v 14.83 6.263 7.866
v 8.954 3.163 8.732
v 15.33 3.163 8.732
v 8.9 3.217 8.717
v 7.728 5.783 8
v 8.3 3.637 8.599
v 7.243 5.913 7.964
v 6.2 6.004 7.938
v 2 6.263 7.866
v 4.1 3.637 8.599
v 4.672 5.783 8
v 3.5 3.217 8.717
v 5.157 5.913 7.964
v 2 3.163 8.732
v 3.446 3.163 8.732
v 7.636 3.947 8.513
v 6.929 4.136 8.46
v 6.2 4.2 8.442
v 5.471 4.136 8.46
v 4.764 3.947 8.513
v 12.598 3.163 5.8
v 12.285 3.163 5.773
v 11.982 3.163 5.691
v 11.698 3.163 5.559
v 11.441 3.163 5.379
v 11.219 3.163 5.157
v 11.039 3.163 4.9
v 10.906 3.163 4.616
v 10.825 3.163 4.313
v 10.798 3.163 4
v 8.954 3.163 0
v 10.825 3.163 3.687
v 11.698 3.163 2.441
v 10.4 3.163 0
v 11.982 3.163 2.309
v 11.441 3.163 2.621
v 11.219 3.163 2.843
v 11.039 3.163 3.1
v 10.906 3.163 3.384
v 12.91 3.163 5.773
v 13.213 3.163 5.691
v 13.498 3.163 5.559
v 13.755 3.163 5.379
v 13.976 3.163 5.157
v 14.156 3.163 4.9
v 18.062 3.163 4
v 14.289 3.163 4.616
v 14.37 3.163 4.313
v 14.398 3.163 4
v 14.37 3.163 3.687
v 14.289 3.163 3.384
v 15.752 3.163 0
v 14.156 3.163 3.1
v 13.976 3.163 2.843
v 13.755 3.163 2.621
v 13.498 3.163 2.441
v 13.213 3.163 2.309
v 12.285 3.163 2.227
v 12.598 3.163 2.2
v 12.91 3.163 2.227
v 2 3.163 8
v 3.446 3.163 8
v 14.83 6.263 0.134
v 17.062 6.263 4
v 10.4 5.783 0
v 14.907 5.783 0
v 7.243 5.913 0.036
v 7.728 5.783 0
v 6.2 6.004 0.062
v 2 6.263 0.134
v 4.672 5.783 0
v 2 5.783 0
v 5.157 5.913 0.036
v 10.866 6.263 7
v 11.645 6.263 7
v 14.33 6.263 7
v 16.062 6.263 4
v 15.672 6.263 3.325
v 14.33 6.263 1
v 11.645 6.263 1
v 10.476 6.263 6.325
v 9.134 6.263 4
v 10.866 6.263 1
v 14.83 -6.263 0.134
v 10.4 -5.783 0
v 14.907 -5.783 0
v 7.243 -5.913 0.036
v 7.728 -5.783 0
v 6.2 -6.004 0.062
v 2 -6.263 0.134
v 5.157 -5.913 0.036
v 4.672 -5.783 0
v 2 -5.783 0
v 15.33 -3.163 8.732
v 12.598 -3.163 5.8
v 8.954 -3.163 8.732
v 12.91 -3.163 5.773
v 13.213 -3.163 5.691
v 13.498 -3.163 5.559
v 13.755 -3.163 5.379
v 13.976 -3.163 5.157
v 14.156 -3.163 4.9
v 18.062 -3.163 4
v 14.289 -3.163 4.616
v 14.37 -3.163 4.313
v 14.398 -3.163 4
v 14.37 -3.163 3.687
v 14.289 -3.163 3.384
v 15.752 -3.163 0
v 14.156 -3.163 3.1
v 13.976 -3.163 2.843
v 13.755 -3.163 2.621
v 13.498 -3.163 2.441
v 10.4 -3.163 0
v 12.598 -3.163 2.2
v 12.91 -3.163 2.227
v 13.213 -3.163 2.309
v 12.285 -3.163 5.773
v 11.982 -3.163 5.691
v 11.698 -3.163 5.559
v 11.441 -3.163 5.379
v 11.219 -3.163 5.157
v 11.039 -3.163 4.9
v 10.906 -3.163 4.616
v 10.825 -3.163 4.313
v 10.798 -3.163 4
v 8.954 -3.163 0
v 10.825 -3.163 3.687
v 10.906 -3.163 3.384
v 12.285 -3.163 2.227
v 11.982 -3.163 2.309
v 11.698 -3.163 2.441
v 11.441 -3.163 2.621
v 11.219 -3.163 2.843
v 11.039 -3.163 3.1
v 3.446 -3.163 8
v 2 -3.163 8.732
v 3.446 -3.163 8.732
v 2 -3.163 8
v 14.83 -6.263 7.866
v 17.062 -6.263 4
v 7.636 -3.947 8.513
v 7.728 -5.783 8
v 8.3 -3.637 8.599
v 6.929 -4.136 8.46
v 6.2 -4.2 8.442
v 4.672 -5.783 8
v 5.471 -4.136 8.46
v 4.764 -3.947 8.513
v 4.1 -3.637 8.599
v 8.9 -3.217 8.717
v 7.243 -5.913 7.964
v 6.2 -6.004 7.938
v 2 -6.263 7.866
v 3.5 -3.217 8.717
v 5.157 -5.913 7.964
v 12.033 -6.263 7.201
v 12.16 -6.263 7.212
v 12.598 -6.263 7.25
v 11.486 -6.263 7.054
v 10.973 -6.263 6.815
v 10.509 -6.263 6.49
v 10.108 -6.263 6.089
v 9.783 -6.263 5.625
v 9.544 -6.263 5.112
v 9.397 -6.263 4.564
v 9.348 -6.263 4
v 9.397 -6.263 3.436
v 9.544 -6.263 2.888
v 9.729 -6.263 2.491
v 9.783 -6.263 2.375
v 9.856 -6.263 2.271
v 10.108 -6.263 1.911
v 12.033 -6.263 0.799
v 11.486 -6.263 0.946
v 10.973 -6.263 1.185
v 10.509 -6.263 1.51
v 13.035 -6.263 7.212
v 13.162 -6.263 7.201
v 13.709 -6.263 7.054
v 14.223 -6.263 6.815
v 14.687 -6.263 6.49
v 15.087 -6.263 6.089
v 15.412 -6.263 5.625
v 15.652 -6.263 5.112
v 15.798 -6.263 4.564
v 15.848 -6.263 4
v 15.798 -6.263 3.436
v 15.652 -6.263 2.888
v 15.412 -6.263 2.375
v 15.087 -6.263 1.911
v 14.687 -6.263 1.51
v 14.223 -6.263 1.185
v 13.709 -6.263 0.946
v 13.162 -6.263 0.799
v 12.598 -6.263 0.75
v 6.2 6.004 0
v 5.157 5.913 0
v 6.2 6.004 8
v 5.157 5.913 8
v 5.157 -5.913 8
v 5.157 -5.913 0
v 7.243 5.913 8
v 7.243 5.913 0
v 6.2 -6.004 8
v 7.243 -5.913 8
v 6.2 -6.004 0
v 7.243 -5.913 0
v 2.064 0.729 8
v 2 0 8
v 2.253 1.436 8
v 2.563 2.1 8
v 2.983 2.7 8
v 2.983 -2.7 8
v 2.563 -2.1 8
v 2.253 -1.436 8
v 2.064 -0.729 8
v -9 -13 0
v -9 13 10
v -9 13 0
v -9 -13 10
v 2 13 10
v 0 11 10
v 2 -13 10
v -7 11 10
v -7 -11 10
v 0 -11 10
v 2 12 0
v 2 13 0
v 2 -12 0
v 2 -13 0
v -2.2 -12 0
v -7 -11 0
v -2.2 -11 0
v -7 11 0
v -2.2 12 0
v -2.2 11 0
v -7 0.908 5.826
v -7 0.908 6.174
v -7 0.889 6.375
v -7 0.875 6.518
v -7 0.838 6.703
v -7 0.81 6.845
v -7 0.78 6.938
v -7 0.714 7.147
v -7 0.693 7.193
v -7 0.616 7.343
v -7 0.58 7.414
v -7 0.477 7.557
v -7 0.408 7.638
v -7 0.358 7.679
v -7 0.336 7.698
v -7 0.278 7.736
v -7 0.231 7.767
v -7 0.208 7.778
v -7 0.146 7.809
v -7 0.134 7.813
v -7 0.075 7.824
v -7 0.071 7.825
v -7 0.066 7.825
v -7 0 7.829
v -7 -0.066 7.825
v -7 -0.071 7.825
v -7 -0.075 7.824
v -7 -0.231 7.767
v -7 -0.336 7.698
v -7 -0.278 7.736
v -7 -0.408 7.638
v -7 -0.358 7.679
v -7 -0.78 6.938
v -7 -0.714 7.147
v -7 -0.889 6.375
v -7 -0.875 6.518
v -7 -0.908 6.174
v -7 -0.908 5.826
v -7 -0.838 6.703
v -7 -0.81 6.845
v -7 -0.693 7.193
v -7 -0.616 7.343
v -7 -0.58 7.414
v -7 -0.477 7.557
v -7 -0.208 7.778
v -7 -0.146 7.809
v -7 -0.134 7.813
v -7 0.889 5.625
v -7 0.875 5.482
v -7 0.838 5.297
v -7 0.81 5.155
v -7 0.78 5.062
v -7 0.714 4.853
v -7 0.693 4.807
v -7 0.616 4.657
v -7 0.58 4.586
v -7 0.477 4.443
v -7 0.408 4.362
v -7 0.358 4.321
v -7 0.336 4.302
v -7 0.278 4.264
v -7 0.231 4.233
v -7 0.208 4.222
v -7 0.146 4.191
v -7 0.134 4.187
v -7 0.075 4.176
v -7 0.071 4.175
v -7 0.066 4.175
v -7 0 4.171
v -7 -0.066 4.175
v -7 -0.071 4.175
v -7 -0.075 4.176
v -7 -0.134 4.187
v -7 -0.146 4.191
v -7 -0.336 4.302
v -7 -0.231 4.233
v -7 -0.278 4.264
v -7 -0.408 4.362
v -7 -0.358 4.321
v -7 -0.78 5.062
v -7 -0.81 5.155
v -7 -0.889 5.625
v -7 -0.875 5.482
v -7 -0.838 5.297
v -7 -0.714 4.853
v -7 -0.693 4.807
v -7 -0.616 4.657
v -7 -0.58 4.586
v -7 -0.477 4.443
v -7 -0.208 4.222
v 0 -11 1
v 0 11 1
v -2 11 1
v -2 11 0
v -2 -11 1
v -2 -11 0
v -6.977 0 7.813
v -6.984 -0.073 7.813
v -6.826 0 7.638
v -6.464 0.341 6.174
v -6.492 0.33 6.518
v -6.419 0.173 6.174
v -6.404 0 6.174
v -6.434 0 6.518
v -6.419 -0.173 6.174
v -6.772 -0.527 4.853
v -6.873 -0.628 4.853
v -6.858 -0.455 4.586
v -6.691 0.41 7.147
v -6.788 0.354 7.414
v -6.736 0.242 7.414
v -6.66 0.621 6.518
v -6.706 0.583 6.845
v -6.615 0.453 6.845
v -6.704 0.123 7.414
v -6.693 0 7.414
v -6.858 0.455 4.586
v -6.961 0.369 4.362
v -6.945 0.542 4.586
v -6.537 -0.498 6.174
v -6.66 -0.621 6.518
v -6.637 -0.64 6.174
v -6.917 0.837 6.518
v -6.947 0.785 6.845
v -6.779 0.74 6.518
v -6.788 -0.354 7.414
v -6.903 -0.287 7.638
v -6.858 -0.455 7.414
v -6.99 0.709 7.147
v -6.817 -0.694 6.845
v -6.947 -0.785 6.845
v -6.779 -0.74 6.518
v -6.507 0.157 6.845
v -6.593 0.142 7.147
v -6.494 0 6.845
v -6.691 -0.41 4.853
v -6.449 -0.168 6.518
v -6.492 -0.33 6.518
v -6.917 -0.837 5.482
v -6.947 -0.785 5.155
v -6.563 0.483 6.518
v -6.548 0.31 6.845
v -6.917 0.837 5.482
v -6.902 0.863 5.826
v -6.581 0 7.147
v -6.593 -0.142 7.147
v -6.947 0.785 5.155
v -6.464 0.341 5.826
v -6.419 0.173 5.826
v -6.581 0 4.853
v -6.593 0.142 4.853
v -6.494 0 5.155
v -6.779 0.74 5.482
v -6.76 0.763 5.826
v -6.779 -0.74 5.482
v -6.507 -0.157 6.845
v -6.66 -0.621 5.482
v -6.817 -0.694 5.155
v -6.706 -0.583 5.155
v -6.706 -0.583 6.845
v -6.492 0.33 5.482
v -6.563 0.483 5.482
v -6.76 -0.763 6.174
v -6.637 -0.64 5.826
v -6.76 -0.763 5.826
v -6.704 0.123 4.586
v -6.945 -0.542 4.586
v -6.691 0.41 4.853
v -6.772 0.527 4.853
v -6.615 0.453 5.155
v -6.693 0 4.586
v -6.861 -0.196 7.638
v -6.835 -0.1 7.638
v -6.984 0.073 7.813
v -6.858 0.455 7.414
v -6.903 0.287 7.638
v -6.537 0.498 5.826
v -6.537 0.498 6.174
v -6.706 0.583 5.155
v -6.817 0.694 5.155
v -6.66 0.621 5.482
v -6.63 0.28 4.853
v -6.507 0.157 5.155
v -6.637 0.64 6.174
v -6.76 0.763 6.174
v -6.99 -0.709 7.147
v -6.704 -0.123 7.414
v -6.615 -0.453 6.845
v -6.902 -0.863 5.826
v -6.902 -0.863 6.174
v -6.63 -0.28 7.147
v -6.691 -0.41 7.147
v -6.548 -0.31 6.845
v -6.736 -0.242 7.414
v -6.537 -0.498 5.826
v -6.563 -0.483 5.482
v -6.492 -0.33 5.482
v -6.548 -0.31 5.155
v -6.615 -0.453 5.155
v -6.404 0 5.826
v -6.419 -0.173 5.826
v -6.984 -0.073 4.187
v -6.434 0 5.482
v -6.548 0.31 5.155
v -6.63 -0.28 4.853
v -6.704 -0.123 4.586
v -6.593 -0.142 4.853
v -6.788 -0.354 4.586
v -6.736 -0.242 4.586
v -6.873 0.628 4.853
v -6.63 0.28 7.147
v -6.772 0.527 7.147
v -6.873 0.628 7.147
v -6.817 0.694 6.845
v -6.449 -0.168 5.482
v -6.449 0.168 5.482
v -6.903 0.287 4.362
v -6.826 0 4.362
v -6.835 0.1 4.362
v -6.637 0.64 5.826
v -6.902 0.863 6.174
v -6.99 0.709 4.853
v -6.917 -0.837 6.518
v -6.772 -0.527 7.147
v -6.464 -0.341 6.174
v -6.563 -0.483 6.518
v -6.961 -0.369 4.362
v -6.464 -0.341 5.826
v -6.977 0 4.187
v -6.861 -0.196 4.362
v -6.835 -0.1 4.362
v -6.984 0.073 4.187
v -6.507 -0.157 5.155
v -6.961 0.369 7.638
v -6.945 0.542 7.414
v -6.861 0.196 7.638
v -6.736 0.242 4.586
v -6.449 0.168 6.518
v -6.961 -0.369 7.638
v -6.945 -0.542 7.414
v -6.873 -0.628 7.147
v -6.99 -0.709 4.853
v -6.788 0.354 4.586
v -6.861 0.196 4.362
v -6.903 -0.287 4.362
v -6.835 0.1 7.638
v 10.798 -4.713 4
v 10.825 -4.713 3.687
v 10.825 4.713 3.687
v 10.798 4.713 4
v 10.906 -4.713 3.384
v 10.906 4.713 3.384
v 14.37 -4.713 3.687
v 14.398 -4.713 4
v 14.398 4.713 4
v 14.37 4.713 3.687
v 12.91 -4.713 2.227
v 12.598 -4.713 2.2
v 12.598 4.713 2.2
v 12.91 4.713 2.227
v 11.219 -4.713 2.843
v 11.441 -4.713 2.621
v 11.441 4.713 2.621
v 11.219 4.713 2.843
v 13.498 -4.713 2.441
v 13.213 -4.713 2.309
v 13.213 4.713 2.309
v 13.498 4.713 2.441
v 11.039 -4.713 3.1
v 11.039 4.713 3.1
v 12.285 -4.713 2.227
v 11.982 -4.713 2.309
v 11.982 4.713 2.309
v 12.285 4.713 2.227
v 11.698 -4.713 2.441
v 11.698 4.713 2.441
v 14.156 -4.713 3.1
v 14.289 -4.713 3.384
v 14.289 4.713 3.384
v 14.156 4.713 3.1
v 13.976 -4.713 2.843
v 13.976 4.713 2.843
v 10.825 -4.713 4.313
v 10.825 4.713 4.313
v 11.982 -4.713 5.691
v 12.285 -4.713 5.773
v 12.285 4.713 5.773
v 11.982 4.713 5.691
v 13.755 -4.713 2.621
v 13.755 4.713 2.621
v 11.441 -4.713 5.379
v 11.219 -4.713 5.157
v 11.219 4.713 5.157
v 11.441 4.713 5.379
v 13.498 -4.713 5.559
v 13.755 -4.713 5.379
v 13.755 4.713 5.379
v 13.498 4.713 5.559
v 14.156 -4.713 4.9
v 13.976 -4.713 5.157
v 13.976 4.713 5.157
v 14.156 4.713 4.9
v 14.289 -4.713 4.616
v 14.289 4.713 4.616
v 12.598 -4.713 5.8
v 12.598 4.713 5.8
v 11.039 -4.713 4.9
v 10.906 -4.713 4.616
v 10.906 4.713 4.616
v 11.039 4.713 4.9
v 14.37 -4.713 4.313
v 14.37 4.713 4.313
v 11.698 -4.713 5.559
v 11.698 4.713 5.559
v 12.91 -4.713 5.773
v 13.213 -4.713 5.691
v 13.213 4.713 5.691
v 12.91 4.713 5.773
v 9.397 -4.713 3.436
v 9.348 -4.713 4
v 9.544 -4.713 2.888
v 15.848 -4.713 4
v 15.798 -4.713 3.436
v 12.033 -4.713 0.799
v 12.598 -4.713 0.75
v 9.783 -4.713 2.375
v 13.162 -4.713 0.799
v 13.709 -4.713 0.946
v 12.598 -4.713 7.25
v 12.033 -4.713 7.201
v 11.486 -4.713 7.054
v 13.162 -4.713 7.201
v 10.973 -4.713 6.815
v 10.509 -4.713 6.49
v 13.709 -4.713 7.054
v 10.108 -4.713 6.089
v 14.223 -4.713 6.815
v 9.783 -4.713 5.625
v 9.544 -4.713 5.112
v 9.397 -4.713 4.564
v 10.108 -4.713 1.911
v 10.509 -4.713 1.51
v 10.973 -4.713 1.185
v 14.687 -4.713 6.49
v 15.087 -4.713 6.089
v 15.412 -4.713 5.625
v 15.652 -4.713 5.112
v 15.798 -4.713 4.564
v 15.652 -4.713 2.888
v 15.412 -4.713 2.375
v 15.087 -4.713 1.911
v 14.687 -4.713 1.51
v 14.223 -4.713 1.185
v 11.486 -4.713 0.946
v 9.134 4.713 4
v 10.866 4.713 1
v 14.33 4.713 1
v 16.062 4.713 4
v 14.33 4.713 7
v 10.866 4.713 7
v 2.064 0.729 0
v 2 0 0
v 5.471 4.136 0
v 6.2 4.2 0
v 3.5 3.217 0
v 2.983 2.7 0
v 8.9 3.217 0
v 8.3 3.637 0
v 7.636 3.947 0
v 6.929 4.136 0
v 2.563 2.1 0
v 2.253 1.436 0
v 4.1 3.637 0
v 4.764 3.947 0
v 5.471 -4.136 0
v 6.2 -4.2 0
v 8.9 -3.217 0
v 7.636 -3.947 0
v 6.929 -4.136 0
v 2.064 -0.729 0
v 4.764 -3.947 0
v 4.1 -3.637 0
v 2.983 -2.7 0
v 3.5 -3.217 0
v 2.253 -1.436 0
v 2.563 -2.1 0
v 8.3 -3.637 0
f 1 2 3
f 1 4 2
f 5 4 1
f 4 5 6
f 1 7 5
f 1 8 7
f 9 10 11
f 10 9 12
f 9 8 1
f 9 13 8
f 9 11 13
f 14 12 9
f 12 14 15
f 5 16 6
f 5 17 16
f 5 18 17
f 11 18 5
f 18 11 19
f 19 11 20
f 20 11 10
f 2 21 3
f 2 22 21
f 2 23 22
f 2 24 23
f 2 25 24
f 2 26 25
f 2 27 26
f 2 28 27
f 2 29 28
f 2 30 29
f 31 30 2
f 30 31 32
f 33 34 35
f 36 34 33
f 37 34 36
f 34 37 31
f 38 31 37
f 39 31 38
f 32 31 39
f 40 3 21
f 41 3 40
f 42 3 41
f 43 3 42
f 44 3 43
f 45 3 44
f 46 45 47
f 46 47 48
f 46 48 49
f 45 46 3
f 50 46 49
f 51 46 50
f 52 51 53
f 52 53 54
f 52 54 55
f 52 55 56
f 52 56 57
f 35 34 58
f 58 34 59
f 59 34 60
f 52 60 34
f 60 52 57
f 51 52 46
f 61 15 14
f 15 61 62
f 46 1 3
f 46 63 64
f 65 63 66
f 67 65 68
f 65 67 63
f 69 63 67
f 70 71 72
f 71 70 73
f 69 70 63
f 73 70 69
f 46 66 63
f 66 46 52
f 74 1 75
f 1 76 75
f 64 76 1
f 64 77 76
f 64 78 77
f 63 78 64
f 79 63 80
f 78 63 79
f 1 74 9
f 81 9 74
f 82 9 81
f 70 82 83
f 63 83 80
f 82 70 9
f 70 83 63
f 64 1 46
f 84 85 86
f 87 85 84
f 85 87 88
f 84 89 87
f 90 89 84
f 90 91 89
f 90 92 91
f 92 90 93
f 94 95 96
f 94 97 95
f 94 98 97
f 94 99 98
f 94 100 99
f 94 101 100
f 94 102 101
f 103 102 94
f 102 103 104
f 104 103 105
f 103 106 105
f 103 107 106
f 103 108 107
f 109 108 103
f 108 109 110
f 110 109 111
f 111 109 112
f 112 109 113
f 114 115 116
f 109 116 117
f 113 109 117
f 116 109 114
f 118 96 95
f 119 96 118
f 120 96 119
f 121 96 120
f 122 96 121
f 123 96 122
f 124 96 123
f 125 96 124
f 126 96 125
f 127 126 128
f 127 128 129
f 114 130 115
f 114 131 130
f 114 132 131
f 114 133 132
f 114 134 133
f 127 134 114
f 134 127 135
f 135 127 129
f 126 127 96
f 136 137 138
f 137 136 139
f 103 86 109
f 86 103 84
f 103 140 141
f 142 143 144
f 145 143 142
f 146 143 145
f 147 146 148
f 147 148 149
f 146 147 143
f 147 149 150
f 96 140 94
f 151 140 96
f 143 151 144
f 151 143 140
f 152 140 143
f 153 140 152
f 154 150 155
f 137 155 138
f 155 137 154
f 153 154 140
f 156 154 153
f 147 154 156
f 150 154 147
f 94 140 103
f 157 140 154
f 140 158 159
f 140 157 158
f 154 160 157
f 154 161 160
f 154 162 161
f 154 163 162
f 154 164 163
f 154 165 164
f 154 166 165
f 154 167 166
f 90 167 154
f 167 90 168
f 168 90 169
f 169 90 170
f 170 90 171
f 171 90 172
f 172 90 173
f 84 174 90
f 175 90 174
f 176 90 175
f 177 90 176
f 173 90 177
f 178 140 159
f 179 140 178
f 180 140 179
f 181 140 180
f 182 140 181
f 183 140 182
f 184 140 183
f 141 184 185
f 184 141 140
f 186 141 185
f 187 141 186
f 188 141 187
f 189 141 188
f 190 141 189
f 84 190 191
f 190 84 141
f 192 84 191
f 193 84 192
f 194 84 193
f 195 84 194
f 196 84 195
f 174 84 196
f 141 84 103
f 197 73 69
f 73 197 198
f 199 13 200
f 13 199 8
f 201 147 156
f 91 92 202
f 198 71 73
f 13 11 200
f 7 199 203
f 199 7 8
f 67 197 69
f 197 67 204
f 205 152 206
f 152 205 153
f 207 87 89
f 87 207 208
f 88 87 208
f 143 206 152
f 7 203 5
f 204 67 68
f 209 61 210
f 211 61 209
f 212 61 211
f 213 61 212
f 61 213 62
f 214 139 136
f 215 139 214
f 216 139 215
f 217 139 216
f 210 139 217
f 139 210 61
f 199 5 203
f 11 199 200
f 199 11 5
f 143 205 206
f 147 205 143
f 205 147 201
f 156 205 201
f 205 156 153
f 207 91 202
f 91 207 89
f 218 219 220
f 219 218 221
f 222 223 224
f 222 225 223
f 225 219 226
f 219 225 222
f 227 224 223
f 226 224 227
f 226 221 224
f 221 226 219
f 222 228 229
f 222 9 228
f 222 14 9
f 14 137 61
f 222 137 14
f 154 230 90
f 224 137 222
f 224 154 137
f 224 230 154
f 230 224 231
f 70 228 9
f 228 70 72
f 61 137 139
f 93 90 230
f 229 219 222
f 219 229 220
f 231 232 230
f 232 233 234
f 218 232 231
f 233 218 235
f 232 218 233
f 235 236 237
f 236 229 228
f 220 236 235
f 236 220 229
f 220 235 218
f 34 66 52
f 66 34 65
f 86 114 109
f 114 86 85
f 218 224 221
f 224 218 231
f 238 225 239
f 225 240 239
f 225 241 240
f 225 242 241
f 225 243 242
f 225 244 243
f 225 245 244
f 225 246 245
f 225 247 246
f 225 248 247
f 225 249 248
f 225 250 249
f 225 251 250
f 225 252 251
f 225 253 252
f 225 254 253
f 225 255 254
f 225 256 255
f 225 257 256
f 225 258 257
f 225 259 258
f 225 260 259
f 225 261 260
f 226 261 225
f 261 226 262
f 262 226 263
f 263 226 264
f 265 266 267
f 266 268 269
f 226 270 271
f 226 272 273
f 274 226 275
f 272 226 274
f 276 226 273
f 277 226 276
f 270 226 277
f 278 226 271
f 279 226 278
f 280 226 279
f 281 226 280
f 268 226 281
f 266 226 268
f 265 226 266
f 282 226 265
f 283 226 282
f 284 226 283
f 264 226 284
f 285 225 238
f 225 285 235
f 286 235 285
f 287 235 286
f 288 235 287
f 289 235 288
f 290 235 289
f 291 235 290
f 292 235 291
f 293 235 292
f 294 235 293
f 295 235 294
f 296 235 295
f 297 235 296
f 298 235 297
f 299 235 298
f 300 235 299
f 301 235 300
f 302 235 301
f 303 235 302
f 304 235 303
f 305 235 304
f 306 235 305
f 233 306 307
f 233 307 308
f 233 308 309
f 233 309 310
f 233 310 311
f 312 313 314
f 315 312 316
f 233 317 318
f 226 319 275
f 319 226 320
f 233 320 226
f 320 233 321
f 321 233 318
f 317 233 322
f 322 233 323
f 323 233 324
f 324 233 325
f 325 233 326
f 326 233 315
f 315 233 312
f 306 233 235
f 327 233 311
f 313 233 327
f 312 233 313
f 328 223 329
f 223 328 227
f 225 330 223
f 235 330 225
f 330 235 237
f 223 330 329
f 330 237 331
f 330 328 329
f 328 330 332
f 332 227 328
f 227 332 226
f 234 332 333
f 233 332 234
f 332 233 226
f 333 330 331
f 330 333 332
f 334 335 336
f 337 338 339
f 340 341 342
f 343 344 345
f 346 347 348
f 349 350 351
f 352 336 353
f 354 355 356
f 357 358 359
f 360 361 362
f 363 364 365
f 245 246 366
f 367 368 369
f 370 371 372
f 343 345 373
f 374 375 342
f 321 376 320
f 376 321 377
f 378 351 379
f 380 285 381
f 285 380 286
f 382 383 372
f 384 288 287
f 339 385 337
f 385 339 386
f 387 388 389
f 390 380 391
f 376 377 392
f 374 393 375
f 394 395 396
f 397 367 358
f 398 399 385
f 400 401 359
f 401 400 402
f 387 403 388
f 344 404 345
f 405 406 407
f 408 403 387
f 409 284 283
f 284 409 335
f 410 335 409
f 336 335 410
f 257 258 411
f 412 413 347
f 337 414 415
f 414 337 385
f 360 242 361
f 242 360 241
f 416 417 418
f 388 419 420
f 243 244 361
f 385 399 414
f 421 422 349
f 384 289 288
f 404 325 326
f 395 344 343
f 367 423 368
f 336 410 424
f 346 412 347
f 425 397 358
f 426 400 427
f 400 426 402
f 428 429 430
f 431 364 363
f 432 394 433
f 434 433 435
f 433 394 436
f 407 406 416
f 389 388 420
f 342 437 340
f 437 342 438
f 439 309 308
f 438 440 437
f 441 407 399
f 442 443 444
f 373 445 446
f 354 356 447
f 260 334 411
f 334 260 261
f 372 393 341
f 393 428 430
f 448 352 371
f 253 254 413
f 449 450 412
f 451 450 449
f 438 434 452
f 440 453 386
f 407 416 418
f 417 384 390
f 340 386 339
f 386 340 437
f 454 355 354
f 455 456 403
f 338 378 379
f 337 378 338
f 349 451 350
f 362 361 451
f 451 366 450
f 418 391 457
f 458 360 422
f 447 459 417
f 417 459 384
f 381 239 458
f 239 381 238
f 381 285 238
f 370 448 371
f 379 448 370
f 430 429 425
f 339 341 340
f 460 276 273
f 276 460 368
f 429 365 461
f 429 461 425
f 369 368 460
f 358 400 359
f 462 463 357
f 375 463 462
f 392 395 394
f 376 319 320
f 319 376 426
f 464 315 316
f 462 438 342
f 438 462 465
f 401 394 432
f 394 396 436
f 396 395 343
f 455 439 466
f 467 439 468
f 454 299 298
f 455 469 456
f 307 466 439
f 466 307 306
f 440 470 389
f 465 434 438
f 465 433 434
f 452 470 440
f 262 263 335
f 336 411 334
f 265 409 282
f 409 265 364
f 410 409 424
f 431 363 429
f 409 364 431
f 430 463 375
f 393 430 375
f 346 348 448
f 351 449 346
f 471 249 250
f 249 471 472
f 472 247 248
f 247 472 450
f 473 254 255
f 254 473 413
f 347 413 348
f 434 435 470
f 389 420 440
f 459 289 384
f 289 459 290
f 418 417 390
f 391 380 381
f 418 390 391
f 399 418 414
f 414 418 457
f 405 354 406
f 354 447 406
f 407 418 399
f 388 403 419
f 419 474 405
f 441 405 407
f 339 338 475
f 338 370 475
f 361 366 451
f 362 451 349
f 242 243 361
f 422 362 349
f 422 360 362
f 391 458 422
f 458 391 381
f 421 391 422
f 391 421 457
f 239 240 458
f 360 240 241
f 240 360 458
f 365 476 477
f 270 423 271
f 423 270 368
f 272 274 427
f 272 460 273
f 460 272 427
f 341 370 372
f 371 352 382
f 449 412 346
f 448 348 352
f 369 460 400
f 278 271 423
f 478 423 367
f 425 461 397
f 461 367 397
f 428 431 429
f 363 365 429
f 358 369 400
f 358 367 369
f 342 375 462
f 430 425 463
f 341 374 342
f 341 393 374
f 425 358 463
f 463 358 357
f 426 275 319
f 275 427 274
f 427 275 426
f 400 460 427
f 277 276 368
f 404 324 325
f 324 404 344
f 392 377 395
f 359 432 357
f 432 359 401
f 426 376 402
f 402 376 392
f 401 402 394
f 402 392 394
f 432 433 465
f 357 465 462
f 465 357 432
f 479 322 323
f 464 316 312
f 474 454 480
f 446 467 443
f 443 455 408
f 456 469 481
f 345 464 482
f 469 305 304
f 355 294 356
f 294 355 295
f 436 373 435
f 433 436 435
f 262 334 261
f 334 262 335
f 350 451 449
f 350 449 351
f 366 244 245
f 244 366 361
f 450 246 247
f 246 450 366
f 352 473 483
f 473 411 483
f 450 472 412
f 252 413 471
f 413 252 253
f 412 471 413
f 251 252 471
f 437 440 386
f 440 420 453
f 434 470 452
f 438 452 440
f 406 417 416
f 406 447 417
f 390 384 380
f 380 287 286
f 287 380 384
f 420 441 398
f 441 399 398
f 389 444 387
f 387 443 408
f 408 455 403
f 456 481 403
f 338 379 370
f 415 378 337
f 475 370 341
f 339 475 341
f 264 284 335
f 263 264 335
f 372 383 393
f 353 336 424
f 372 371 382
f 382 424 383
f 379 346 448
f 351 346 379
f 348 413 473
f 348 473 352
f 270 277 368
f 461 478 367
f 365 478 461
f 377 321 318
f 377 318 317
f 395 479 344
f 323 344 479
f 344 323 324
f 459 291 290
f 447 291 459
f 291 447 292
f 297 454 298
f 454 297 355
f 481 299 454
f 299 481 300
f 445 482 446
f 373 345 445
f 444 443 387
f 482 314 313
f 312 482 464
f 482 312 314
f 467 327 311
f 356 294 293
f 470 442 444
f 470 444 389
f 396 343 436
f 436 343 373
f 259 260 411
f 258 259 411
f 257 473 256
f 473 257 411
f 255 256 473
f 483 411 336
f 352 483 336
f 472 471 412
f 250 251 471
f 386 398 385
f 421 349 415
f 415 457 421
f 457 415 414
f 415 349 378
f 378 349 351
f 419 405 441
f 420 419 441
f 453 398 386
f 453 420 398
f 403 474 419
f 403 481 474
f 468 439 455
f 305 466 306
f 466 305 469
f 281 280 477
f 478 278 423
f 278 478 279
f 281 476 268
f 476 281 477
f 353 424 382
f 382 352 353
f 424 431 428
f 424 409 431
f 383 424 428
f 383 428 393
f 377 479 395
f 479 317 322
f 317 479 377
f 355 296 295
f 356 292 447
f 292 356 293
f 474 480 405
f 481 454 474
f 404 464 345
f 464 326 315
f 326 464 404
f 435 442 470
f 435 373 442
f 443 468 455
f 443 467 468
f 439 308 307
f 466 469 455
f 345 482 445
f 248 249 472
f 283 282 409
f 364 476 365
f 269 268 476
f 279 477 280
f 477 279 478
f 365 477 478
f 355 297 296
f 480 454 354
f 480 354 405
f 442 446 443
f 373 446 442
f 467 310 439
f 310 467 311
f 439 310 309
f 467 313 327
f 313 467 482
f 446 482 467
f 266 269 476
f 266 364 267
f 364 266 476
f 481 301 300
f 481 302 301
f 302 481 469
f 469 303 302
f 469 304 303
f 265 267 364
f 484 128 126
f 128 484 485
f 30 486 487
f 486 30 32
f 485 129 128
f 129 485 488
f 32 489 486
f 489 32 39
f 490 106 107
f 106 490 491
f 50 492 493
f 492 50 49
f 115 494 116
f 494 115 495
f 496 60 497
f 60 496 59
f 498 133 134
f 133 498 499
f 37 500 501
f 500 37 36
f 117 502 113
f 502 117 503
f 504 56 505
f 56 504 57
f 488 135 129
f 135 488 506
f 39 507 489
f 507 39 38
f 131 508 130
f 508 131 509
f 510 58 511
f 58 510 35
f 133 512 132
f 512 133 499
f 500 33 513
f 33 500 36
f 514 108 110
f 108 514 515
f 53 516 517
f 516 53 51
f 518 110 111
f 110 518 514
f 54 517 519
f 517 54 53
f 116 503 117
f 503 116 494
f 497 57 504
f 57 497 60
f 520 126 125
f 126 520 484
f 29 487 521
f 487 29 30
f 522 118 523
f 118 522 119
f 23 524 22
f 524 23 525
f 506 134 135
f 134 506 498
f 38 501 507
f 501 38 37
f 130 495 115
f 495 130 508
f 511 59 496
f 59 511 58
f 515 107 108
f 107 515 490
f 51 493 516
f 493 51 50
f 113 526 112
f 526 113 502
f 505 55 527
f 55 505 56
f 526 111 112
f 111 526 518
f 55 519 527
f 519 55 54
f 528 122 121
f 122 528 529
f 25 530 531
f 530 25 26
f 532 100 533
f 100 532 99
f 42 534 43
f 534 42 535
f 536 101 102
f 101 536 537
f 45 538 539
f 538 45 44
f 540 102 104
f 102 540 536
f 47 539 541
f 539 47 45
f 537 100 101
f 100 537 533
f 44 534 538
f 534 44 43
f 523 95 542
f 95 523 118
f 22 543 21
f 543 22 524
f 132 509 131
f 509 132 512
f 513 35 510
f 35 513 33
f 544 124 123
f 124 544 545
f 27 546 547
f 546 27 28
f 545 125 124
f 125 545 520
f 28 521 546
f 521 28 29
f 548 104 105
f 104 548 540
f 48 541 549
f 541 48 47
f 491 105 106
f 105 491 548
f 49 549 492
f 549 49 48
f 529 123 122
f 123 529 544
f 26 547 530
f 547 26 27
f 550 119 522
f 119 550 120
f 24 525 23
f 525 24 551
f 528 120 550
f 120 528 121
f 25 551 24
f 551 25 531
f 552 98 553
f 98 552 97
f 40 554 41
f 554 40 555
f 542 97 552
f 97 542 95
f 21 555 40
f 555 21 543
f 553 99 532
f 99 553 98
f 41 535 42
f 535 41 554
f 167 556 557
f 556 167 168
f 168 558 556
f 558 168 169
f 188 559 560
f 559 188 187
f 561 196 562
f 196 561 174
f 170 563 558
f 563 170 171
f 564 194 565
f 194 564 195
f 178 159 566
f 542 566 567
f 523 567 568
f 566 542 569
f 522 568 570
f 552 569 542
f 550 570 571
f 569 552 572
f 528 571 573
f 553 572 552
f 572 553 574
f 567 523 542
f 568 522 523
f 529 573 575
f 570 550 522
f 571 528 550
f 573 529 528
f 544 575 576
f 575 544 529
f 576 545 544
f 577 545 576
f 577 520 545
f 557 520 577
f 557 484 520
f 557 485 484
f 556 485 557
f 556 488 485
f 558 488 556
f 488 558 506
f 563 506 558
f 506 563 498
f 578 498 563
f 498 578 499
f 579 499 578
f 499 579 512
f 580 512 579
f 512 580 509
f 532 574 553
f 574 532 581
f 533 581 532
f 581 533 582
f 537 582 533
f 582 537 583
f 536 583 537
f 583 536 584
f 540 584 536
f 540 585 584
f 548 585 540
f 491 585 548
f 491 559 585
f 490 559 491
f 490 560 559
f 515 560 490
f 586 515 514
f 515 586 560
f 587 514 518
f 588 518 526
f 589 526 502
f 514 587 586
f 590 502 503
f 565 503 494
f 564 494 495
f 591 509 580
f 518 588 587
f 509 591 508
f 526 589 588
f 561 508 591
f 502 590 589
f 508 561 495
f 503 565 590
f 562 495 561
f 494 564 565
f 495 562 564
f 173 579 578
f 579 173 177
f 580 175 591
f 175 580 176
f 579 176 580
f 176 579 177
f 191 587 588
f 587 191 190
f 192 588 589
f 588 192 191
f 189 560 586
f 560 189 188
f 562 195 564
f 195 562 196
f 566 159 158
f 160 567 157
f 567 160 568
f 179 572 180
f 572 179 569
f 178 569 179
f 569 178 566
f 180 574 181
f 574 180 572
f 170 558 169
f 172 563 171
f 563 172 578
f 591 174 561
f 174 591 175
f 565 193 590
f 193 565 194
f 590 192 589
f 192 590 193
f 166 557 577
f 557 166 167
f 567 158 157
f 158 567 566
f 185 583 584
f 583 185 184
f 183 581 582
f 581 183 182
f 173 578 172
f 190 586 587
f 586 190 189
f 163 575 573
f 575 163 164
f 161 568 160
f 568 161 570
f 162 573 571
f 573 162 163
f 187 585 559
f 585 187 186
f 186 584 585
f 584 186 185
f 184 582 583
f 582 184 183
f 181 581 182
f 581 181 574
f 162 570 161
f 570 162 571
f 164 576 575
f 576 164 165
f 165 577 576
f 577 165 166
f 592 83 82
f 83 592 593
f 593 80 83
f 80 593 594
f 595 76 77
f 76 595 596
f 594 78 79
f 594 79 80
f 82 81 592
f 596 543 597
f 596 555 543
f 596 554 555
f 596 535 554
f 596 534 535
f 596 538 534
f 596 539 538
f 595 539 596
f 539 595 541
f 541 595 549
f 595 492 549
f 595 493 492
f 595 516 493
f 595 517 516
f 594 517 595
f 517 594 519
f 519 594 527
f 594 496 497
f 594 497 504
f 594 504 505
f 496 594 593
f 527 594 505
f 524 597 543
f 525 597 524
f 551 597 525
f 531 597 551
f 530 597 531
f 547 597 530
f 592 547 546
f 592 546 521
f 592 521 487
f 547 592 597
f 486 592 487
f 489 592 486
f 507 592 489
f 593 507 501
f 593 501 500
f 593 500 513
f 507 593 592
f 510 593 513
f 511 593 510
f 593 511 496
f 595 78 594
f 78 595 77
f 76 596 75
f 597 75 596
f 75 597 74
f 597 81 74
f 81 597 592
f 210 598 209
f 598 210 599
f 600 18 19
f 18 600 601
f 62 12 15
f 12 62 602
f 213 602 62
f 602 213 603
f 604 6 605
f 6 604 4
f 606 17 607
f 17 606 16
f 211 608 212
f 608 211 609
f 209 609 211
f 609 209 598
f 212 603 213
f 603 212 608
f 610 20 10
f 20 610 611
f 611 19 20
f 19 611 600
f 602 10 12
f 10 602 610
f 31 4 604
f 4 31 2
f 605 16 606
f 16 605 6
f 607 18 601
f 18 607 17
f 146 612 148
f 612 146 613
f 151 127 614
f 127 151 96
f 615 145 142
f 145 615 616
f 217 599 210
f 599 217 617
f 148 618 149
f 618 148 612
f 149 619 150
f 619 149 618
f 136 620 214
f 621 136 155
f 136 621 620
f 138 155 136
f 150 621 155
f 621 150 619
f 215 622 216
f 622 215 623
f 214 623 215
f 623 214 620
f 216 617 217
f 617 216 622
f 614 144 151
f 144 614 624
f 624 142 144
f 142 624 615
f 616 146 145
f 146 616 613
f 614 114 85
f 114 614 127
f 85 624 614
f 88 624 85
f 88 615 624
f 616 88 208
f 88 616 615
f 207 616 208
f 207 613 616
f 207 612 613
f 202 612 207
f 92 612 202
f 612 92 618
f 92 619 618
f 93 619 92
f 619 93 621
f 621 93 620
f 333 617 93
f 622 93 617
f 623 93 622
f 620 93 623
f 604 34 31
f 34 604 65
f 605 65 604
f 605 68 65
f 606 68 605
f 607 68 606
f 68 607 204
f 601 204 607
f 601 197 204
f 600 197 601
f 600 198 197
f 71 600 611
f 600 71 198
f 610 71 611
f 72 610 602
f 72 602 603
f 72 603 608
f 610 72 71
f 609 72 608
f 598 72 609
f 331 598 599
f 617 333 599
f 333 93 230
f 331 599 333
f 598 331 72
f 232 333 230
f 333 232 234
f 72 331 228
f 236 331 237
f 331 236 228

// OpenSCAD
$fn=36;

holder_switch();

angle = 130;
wall = 2;
slop = .2;
hole_height = 2.75;
hole_sep = 19.25;

height = 8;
length = hole_sep+wall*2;

endstop_width = 7.5;

m8_dia = 8;
m8_rad = m8_dia/2+slop;

m3_nut_rad = 6/cos(30)/2;
m3_nut_height = 3;
m3_rad = 1.8;
m3_cap_rad = 3.25;


module holder(){
	clamp_offset = 5;
	length = length+clamp_offset;
	difference(){
		hull(){
			translate([-m8_rad,0,height/2]) cube([length, m8_rad*2+wall*3, height],center=true);
			translate([length/2,0,height/2]) cylinder(r=m8_rad+wall/2, h=height, center=true);

			//screwholes
			
		}
		
		translate([length/2,0,height/2]) cylinder(r=m8_rad, h=height+1, center=true);
		
		//clamp
		translate([length/2-clamp_offset,0,height/2]) cylinder(r=m8_rad, h=height+1, center=true);
	
		translate([-clamp_offset,0,height/2]) cube([length, m8_rad*2, height+1],center=true);

		//screwholes
		for(i=[-1,1]) translate([i*hole_sep/2-m8_rad/2-wall, 0, height-hole_height]) rotate([-90,0,0]) {
			cap_cylinder(r=m3_rad, h=length, center=true);
			translate([0,0,m8_rad+wall*2/3]) cap_cylinder(r=m3_cap_rad, h=wall);
			translate([0,0,-m8_rad-wall*2]) cylinder(r=m3_nut_rad, h=wall*1.3333, $fn=6);
		}
	}
}

module holder_switch(){
    width=22;
    thick = 7;
    wire = 5;
    
    switch_height=8;
    
    difference(){
        union(){
            //rod clamp
            translate([0,0,height/2]) rotate([0,90,0]) round_clip(rad = m8_rad, height = height, wall = wall, angle=angle, support = 0, clamp=1, solid = 1);
            
            //endstop holder
            translate([-thick/2,0,switch_height/2+wall/2]) cube([thick+wall*2, width+wall*2,switch_height+wall], center=true);
        }
        
        //hollow out the rod
        translate([0,0,height/2]) rotate([0,90,0]) round_clip(rad = m8_rad, height = height, wall = wall, angle=angle, support = 0, clamp=1, solid = 0);
        
        difference(){
            union(){
                //endstop
                translate([-thick/2,0,switch_height/2+wall]) cube([thick, width,switch_height+wall], center=true);
                //wire pass
                translate([-thick/2-(thick-wire)/2,0,switch_height/2-.1]) cube([wire, width,switch_height], center=true);
            }
            
            //retainer bump
            translate([-thick-wall/5,0,switch_height*3/4]) scale([1,1,2]) sphere(r=wall/2);
        }
        
        //flatten bottom
        for(i=[-1,-1]) translate([0,0,25*i+height/2+height/2*i]) cube([50,50,50], center=true);
    }
}

module holder_old(){
	difference(){
		union(){
			#translate([0,0,height/2]) rotate([0,90,0]) round_clip(rad = m8_rad, height = height, wall = wall, angle=angle, support = 0, clamp=1, solid = 1);
			translate([wall/2,0,height/2]) cube([wall,hole_sep+m3_rad*2+wall*2.5,height],center=true);

			for(i=[-1,1]) translate([wall/2,hole_sep/2*i,hole_height]) rotate([0,90,0]) rotate([0,0,0]) cylinder(r1=wall+m3_nut_rad, r2=wall/2+m3_nut_rad, h=m3_nut_height+.1, $fn=6);
		}

		for(i=[-1,1]) translate([wall,hole_sep/2*i,hole_height]) rotate([0,90,0]) {
			cylinder(r=m3_nut_rad, h=m3_nut_height+.5, $fn=6);
			rotate([0,0,-90]) cap_cylinder(r=m3_rad, h=height*2, center=true);
		}

		translate([0,0,height/2]) rotate([0,90,0]) round_clip(rad = m8_rad, height = height, wall = wall, angle=angle, support = 0, clamp=1, solid = 0);

		//clean top and bot
		for(i=[-1,1]) translate([0,0,25*i+height/2+height/2*i]) cube([50,50,50], center=true);
	}
}

module round_clip(rad=8, height=10, wall=3, angle=45, support=0, clamp=0, solid=0){
	translate([0,0,wall+rad])
	rotate([0,90,0])
	if(solid == 1){
		union(){
			translate([0,0,height/2]) rotate([0,0,30]) cylinder(r=(wall/2+rad)/cos(30), h=height*2, center=true);

			if(clamp==1){
				for(i=[-1,1]) rotate([0,0,i*angle/2]) translate([-rad-wall/2,0,0]) rotate([0,0,-i*angle/2]) rotate([i*90,0,0]) hull(){
					translate([wall*3, 0, 0]) cylinder(r1=wall+m3_nut_rad, r2=wall/2+m3_nut_rad, h=m3_nut_height+.1, $fn=6, center=true);
					translate([-m8_rad, 0, 0]) cylinder(r1=wall+m3_nut_rad, r2=wall/2+m3_nut_rad, h=m3_nut_height+.1, $fn=6, center=true);
				}
			}
		}
	}else{
		//hollow
		cylinder(r=rad, h=height*4, center=true);
		hull(){
			if(support==1){
				translate([0,0,rad+wall+height/2]) rotate([90,0,0]) cylinder(r=rad+wall, h=height*3, center=true);
			}else{
				translate([rad*2,0,rad+wall+height/2]) rotate([90,0,0]) cylinder(r=rad+wall, h=height*3, center=true);
			}
			translate([-rad,0,rad+wall+height/2]) rotate([90,0,0]) cylinder(r=rad+wall, h=height*3, center=true);
		}

		//zip tie slot
		*translate([-1,0,0]) difference(){
			cylinder(r=(wall/2+rad+2)/cos(30), h=3, center=true);
			cylinder(r=(wall/2+rad)/cos(30), h=4, center=true);
		}
		
		//clip cutout
		difference(){
			for(i=[-1,0,1]) rotate([0,0,i*(angle/2-30)]) translate([-rad*2,0,0]) cylinder(r=rad*2, h=height*3, center=true, $fn=3);
			for(i=[-1,1]) rotate([0,0,i*angle/2]) translate([-rad-wall/2,0,0]) cylinder(r=wall/2, h=height*3, center=true);
			if(clamp == 1){
				for(i=[-1,1]) rotate([0,0,i*angle/2]) translate([-rad-wall/2,0,0]) rotate([0,0,-i*angle/2]) rotate([i*90,0,0]) hull(){
					cylinder(r1=wall+m3_nut_rad, r2=wall/2+m3_nut_rad, h=m3_nut_height+.1, $fn=6, center=true);
					translate([-m8_rad, 0, 0]) cylinder(r1=wall+m3_nut_rad, r2=wall/2+m3_nut_rad, h=m3_nut_height+.1, $fn=6, center=true);
				}
			}
		}

		if(clamp == 1){
			rotate([0,0,1*angle/2]) translate([-rad-wall/2,0,0]) rotate([0,0,-1*angle/2]) rotate([90,0,0]) translate([-m8_rad, 0, -m8_rad*4]) cylinder(r=m3_rad, h=m8_rad*6);
			rotate([0,0,1*angle/2]) translate([-rad-wall/2,0,0]) rotate([0,0,-1*angle/2]) rotate([90,0,0]) translate([-m8_rad, 0, 0]) cylinder(r=m3_cap_rad, h=wall);
			rotate([0,0,-1*angle/2]) translate([-rad-wall/2,0,0]) rotate([0,0,1*angle/2]) rotate([90,0,0]) translate([-m8_rad, 0, -wall]) cylinder(r=m3_nut_rad, h=wall, $fn=6);
		}
	}
}


module tear(r, h) {
  union() {
    cylinder(r=r, h=h);
    rotate([0, 0, 135]) cube([r, r, h]);
  }
}

module crap(){
difference() {
  union() {
		translate([1,.5,0])
		cube([15, 11.2, 7]);

		translate([-13, 17, 0])
		cube([28, 2.5, 7]);

		translate([8.4, 11.2, 0])
		cylinder(r=16 / 2, h=7);
  }

	translate([-0.1, 4.9, 3.3])
	rotate([0, 90, 0])
	tear(r=3.1 / 2, h=23);

	translate([8.4, 11.2, -1])
	cylinder(r=4.2, h=10);

	translate([4.7, -1, -1])
	cube([7.2, 11.2, 10]);

		translate([-9.25, 21, 4.5])
		rotate([90, 0, 0])
		cylinder(r=1.8, h=9);

		translate([-9.25, 18, 4.5])
		rotate([90, 0, 0])
		rotate([0,0,30]) cylinder(r=3/cos(30), h=3, $fn=6);	

		translate([10, 18, 4.5])
		rotate([90, 0, 0])
		rotate([0,0,30]) cylinder(r=3.2, h=3, $fn=6);
		translate([10, 18, 6])
		rotate([90, 0, 0])
		rotate([0,0,30]) cylinder(r=3.2, h=3, $fn=6);
		
		translate([10,19.6, 4.5])
		rotate([90, 0, 0])
		cylinder(r=1.8, h=9);

  translate([3.9, -5, -1])
  cylinder(r=1.5, h=6);
}
}

module cap_cylinder(r=1, h=1, center=false){
	render() union(){
		cylinder(r=r, h=h, center=center);
		intersection(){
			rotate([0,0,22.5]) cylinder(r=r/cos(180/8), h=h, $fn=8, center=center);
			translate([0,-r/cos(180/4),0]) rotate([0,0,0]) cylinder(r=r/cos(180/4), h=h, $fn=4, center=center);
		}
	}
}
